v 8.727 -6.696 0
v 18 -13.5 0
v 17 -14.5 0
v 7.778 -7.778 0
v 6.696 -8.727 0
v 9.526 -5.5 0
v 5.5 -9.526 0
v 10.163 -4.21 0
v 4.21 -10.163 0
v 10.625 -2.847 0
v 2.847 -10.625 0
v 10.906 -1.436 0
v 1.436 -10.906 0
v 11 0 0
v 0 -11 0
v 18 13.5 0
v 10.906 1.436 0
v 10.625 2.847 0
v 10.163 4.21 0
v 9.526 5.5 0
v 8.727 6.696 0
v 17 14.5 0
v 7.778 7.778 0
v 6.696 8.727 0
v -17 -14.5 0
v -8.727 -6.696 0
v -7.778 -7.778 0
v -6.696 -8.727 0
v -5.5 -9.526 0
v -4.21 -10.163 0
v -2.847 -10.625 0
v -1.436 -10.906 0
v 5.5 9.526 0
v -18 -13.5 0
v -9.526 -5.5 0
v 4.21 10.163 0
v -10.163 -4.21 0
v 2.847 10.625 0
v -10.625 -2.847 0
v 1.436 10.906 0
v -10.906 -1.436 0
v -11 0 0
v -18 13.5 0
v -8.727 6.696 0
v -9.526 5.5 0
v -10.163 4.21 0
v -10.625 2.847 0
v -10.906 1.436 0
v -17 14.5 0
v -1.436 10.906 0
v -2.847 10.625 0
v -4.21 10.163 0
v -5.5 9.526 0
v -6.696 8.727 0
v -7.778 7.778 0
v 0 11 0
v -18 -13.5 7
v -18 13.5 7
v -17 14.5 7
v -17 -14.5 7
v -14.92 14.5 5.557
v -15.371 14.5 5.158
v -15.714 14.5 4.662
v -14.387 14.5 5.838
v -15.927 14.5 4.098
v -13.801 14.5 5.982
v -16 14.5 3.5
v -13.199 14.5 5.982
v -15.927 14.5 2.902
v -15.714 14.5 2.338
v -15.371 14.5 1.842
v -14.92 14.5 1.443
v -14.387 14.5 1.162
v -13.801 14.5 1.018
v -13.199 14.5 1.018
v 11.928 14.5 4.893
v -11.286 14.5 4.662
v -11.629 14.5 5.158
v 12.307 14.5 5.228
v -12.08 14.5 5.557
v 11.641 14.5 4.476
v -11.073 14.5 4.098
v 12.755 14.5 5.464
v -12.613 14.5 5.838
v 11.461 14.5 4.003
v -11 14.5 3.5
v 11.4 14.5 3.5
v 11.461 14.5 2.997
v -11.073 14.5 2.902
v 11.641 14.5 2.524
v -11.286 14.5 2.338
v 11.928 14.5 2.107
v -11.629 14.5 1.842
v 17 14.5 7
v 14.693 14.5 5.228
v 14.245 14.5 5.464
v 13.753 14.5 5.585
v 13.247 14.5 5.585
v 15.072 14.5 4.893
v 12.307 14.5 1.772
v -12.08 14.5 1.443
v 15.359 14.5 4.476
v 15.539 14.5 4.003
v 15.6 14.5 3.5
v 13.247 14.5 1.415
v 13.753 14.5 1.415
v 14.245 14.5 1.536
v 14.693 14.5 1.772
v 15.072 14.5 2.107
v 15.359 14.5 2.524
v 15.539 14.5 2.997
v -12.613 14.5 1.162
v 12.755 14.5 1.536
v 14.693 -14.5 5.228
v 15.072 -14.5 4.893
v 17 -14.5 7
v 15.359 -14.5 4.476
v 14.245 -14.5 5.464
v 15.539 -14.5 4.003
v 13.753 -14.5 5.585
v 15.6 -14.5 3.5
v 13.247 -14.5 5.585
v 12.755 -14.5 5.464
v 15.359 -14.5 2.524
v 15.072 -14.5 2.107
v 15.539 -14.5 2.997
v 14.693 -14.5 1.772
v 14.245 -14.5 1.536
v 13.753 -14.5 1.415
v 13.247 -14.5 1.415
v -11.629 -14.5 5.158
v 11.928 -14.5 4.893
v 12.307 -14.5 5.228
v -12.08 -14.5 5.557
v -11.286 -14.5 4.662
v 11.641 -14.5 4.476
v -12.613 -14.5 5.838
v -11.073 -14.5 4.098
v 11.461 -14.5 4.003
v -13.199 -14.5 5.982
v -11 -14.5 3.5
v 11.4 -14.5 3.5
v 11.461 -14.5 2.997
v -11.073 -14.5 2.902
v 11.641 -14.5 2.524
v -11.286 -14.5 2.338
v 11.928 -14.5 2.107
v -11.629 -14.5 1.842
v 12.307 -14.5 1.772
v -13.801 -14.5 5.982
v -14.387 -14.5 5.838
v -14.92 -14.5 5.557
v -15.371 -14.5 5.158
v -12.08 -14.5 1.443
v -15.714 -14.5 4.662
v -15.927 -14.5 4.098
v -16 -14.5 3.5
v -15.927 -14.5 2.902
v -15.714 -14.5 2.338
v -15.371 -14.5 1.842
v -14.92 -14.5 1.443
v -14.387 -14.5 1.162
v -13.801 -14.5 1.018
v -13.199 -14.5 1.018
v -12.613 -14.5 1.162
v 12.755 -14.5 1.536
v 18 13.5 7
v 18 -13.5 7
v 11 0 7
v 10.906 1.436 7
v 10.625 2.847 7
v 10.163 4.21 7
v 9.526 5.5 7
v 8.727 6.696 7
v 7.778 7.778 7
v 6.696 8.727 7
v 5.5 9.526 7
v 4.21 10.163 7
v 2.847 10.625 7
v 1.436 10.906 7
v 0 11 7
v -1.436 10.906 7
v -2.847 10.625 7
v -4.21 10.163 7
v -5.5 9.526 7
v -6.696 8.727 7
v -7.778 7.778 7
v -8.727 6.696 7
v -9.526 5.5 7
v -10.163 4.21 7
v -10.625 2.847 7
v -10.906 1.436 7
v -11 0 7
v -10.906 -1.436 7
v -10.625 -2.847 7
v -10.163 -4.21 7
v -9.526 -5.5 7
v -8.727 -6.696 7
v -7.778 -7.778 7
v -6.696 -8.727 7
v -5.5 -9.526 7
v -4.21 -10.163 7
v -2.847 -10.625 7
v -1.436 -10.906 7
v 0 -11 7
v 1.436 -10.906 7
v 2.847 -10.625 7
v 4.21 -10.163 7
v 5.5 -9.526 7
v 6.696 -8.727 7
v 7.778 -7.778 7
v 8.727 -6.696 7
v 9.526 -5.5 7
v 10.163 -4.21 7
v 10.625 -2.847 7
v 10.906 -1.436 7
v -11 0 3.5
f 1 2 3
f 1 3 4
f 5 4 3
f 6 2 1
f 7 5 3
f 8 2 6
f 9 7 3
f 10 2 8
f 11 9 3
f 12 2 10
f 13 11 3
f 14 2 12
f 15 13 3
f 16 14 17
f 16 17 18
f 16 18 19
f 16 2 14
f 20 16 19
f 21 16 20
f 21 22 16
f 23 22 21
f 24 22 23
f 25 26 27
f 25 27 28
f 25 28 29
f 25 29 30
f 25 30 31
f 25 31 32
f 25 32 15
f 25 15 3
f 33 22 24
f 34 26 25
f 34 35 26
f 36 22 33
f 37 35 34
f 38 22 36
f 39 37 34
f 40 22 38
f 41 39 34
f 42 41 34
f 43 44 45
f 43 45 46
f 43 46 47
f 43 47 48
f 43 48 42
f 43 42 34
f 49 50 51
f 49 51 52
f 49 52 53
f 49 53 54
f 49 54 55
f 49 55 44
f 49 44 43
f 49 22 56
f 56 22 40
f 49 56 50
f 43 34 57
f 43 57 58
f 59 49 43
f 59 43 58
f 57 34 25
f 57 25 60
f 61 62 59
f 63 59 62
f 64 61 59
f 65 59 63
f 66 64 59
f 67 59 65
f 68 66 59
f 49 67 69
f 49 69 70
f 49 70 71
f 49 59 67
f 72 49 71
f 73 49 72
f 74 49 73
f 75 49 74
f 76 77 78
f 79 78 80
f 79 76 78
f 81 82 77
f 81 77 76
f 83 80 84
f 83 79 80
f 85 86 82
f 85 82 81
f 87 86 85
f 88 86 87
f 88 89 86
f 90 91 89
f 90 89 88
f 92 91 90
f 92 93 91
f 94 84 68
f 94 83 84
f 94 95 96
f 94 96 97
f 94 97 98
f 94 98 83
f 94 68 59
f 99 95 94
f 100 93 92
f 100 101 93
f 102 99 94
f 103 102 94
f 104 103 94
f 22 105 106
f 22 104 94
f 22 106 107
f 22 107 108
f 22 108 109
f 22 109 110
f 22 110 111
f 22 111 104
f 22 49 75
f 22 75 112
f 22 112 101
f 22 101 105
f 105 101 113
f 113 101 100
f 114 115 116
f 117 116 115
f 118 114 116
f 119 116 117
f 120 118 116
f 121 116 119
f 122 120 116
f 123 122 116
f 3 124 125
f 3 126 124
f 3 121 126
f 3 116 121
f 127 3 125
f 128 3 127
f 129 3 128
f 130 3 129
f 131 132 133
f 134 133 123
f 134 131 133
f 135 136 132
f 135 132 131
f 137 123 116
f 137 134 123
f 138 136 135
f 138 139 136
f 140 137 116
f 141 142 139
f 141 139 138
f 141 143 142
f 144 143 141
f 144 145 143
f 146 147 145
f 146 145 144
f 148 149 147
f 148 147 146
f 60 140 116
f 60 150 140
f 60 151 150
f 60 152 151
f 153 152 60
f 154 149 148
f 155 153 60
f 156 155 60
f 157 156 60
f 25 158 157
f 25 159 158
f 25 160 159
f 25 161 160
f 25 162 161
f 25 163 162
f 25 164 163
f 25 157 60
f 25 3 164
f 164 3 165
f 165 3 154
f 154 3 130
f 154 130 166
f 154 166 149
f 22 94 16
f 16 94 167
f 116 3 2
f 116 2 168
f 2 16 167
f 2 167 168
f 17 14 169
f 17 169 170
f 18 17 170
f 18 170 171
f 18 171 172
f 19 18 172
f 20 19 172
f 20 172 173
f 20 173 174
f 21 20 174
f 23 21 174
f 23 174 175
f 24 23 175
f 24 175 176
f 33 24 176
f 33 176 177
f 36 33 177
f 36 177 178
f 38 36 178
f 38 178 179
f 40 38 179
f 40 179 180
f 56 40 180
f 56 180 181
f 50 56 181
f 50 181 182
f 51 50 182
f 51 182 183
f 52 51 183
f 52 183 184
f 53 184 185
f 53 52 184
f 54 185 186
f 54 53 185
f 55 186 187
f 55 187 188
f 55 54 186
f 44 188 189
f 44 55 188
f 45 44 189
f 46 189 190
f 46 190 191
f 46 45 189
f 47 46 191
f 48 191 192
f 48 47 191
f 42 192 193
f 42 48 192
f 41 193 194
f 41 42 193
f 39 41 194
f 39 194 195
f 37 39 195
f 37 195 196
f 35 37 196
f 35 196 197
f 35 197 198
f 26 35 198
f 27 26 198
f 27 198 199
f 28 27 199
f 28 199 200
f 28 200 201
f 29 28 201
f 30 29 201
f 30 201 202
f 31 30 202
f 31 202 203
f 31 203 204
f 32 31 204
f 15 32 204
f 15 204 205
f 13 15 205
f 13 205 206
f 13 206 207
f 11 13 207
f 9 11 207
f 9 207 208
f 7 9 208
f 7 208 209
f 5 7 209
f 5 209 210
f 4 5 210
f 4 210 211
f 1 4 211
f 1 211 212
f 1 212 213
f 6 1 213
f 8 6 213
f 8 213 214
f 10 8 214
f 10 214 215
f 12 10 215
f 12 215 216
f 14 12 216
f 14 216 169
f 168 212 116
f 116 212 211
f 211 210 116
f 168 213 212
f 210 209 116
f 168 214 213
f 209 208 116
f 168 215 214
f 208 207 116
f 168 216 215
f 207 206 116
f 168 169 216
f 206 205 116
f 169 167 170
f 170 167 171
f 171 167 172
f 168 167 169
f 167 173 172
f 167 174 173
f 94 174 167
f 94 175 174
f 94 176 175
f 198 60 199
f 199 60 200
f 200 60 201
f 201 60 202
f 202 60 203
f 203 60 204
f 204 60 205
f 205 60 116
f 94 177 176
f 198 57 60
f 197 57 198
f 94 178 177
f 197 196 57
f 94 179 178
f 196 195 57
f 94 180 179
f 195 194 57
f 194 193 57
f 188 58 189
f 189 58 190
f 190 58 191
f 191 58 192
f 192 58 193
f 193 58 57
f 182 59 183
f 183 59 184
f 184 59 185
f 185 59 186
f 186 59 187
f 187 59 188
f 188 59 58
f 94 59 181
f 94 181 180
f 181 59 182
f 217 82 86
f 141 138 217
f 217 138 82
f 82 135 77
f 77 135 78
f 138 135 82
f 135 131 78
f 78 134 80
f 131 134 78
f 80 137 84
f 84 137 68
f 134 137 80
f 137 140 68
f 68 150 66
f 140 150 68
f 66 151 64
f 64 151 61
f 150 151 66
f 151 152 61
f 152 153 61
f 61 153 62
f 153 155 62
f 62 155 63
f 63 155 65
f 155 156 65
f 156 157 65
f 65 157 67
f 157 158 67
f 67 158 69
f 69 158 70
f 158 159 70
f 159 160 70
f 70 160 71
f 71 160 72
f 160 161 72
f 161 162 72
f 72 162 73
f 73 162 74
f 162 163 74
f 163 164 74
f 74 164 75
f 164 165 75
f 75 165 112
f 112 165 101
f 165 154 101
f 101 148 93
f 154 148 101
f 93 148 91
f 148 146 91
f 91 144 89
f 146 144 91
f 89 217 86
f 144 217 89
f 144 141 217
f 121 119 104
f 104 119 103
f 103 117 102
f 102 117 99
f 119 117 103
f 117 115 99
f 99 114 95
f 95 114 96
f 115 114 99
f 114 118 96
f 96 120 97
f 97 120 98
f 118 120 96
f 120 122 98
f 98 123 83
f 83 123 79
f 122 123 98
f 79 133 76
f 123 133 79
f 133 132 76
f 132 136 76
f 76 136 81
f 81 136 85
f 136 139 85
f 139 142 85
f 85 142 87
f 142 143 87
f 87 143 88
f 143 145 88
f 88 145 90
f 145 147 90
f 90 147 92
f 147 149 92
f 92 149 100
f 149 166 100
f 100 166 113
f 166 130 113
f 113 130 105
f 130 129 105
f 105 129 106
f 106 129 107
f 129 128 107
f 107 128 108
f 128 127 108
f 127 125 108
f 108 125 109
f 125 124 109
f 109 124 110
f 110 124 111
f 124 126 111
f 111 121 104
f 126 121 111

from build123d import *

# Parameters (mm, degrees)
SKETCH_W        = 36
SKETCH_H        = 29
SKETCH_R        = 11
PAD_DEPTH       = 7
SKETCH001_R     = 2.1
SKETCH001_R_2   = 2.5
POCKET_DEPTH    = 29.001
CHAMFER_SIZE    = 1
CHAMFER001_SIZE = 1
CHAMFER002_SIZE = 1


with BuildPart() as part:
    # Sketch → Pad (new body)
    with BuildSketch(Plane.XY):
        Rectangle(SKETCH_W, SKETCH_H)
        Circle(SKETCH_R, mode=Mode.SUBTRACT)
    extrude(amount=PAD_DEPTH)

    # Sketch001 (on Face3 of Pad) → Pocket (cut, through all)
    with BuildSketch(Plane.XZ.offset(14.5)):
        with Locations((13.5, 3.5)):
            Circle(SKETCH001_R)
        with Locations((-13.5, 3.5)):
            Circle(SKETCH001_R_2)
    extrude(amount=-POCKET_DEPTH, mode=Mode.SUBTRACT)

    # Chamfer
    chamfer_edges = [part.edges().sort_by_distance(p)[0] for p in [
        (18, -14.5, 3.5),
    ]]
    chamfer(chamfer_edges, length=CHAMFER_SIZE)

    # Chamfer001
    chamfer001_edges = [part.edges().sort_by_distance(p)[0] for p in [
        (-18, -14.5, 3.5),
    ]]
    chamfer(chamfer001_edges, length=CHAMFER001_SIZE)

    # Chamfer002
    chamfer002_edges = [part.edges().sort_by_distance(p)[0] for p in [
        (18, 14.5, 3.5),
        (-18, 14.5, 3.5),
    ]]
    chamfer(chamfer002_edges, length=CHAMFER002_SIZE)


solid = part.part
